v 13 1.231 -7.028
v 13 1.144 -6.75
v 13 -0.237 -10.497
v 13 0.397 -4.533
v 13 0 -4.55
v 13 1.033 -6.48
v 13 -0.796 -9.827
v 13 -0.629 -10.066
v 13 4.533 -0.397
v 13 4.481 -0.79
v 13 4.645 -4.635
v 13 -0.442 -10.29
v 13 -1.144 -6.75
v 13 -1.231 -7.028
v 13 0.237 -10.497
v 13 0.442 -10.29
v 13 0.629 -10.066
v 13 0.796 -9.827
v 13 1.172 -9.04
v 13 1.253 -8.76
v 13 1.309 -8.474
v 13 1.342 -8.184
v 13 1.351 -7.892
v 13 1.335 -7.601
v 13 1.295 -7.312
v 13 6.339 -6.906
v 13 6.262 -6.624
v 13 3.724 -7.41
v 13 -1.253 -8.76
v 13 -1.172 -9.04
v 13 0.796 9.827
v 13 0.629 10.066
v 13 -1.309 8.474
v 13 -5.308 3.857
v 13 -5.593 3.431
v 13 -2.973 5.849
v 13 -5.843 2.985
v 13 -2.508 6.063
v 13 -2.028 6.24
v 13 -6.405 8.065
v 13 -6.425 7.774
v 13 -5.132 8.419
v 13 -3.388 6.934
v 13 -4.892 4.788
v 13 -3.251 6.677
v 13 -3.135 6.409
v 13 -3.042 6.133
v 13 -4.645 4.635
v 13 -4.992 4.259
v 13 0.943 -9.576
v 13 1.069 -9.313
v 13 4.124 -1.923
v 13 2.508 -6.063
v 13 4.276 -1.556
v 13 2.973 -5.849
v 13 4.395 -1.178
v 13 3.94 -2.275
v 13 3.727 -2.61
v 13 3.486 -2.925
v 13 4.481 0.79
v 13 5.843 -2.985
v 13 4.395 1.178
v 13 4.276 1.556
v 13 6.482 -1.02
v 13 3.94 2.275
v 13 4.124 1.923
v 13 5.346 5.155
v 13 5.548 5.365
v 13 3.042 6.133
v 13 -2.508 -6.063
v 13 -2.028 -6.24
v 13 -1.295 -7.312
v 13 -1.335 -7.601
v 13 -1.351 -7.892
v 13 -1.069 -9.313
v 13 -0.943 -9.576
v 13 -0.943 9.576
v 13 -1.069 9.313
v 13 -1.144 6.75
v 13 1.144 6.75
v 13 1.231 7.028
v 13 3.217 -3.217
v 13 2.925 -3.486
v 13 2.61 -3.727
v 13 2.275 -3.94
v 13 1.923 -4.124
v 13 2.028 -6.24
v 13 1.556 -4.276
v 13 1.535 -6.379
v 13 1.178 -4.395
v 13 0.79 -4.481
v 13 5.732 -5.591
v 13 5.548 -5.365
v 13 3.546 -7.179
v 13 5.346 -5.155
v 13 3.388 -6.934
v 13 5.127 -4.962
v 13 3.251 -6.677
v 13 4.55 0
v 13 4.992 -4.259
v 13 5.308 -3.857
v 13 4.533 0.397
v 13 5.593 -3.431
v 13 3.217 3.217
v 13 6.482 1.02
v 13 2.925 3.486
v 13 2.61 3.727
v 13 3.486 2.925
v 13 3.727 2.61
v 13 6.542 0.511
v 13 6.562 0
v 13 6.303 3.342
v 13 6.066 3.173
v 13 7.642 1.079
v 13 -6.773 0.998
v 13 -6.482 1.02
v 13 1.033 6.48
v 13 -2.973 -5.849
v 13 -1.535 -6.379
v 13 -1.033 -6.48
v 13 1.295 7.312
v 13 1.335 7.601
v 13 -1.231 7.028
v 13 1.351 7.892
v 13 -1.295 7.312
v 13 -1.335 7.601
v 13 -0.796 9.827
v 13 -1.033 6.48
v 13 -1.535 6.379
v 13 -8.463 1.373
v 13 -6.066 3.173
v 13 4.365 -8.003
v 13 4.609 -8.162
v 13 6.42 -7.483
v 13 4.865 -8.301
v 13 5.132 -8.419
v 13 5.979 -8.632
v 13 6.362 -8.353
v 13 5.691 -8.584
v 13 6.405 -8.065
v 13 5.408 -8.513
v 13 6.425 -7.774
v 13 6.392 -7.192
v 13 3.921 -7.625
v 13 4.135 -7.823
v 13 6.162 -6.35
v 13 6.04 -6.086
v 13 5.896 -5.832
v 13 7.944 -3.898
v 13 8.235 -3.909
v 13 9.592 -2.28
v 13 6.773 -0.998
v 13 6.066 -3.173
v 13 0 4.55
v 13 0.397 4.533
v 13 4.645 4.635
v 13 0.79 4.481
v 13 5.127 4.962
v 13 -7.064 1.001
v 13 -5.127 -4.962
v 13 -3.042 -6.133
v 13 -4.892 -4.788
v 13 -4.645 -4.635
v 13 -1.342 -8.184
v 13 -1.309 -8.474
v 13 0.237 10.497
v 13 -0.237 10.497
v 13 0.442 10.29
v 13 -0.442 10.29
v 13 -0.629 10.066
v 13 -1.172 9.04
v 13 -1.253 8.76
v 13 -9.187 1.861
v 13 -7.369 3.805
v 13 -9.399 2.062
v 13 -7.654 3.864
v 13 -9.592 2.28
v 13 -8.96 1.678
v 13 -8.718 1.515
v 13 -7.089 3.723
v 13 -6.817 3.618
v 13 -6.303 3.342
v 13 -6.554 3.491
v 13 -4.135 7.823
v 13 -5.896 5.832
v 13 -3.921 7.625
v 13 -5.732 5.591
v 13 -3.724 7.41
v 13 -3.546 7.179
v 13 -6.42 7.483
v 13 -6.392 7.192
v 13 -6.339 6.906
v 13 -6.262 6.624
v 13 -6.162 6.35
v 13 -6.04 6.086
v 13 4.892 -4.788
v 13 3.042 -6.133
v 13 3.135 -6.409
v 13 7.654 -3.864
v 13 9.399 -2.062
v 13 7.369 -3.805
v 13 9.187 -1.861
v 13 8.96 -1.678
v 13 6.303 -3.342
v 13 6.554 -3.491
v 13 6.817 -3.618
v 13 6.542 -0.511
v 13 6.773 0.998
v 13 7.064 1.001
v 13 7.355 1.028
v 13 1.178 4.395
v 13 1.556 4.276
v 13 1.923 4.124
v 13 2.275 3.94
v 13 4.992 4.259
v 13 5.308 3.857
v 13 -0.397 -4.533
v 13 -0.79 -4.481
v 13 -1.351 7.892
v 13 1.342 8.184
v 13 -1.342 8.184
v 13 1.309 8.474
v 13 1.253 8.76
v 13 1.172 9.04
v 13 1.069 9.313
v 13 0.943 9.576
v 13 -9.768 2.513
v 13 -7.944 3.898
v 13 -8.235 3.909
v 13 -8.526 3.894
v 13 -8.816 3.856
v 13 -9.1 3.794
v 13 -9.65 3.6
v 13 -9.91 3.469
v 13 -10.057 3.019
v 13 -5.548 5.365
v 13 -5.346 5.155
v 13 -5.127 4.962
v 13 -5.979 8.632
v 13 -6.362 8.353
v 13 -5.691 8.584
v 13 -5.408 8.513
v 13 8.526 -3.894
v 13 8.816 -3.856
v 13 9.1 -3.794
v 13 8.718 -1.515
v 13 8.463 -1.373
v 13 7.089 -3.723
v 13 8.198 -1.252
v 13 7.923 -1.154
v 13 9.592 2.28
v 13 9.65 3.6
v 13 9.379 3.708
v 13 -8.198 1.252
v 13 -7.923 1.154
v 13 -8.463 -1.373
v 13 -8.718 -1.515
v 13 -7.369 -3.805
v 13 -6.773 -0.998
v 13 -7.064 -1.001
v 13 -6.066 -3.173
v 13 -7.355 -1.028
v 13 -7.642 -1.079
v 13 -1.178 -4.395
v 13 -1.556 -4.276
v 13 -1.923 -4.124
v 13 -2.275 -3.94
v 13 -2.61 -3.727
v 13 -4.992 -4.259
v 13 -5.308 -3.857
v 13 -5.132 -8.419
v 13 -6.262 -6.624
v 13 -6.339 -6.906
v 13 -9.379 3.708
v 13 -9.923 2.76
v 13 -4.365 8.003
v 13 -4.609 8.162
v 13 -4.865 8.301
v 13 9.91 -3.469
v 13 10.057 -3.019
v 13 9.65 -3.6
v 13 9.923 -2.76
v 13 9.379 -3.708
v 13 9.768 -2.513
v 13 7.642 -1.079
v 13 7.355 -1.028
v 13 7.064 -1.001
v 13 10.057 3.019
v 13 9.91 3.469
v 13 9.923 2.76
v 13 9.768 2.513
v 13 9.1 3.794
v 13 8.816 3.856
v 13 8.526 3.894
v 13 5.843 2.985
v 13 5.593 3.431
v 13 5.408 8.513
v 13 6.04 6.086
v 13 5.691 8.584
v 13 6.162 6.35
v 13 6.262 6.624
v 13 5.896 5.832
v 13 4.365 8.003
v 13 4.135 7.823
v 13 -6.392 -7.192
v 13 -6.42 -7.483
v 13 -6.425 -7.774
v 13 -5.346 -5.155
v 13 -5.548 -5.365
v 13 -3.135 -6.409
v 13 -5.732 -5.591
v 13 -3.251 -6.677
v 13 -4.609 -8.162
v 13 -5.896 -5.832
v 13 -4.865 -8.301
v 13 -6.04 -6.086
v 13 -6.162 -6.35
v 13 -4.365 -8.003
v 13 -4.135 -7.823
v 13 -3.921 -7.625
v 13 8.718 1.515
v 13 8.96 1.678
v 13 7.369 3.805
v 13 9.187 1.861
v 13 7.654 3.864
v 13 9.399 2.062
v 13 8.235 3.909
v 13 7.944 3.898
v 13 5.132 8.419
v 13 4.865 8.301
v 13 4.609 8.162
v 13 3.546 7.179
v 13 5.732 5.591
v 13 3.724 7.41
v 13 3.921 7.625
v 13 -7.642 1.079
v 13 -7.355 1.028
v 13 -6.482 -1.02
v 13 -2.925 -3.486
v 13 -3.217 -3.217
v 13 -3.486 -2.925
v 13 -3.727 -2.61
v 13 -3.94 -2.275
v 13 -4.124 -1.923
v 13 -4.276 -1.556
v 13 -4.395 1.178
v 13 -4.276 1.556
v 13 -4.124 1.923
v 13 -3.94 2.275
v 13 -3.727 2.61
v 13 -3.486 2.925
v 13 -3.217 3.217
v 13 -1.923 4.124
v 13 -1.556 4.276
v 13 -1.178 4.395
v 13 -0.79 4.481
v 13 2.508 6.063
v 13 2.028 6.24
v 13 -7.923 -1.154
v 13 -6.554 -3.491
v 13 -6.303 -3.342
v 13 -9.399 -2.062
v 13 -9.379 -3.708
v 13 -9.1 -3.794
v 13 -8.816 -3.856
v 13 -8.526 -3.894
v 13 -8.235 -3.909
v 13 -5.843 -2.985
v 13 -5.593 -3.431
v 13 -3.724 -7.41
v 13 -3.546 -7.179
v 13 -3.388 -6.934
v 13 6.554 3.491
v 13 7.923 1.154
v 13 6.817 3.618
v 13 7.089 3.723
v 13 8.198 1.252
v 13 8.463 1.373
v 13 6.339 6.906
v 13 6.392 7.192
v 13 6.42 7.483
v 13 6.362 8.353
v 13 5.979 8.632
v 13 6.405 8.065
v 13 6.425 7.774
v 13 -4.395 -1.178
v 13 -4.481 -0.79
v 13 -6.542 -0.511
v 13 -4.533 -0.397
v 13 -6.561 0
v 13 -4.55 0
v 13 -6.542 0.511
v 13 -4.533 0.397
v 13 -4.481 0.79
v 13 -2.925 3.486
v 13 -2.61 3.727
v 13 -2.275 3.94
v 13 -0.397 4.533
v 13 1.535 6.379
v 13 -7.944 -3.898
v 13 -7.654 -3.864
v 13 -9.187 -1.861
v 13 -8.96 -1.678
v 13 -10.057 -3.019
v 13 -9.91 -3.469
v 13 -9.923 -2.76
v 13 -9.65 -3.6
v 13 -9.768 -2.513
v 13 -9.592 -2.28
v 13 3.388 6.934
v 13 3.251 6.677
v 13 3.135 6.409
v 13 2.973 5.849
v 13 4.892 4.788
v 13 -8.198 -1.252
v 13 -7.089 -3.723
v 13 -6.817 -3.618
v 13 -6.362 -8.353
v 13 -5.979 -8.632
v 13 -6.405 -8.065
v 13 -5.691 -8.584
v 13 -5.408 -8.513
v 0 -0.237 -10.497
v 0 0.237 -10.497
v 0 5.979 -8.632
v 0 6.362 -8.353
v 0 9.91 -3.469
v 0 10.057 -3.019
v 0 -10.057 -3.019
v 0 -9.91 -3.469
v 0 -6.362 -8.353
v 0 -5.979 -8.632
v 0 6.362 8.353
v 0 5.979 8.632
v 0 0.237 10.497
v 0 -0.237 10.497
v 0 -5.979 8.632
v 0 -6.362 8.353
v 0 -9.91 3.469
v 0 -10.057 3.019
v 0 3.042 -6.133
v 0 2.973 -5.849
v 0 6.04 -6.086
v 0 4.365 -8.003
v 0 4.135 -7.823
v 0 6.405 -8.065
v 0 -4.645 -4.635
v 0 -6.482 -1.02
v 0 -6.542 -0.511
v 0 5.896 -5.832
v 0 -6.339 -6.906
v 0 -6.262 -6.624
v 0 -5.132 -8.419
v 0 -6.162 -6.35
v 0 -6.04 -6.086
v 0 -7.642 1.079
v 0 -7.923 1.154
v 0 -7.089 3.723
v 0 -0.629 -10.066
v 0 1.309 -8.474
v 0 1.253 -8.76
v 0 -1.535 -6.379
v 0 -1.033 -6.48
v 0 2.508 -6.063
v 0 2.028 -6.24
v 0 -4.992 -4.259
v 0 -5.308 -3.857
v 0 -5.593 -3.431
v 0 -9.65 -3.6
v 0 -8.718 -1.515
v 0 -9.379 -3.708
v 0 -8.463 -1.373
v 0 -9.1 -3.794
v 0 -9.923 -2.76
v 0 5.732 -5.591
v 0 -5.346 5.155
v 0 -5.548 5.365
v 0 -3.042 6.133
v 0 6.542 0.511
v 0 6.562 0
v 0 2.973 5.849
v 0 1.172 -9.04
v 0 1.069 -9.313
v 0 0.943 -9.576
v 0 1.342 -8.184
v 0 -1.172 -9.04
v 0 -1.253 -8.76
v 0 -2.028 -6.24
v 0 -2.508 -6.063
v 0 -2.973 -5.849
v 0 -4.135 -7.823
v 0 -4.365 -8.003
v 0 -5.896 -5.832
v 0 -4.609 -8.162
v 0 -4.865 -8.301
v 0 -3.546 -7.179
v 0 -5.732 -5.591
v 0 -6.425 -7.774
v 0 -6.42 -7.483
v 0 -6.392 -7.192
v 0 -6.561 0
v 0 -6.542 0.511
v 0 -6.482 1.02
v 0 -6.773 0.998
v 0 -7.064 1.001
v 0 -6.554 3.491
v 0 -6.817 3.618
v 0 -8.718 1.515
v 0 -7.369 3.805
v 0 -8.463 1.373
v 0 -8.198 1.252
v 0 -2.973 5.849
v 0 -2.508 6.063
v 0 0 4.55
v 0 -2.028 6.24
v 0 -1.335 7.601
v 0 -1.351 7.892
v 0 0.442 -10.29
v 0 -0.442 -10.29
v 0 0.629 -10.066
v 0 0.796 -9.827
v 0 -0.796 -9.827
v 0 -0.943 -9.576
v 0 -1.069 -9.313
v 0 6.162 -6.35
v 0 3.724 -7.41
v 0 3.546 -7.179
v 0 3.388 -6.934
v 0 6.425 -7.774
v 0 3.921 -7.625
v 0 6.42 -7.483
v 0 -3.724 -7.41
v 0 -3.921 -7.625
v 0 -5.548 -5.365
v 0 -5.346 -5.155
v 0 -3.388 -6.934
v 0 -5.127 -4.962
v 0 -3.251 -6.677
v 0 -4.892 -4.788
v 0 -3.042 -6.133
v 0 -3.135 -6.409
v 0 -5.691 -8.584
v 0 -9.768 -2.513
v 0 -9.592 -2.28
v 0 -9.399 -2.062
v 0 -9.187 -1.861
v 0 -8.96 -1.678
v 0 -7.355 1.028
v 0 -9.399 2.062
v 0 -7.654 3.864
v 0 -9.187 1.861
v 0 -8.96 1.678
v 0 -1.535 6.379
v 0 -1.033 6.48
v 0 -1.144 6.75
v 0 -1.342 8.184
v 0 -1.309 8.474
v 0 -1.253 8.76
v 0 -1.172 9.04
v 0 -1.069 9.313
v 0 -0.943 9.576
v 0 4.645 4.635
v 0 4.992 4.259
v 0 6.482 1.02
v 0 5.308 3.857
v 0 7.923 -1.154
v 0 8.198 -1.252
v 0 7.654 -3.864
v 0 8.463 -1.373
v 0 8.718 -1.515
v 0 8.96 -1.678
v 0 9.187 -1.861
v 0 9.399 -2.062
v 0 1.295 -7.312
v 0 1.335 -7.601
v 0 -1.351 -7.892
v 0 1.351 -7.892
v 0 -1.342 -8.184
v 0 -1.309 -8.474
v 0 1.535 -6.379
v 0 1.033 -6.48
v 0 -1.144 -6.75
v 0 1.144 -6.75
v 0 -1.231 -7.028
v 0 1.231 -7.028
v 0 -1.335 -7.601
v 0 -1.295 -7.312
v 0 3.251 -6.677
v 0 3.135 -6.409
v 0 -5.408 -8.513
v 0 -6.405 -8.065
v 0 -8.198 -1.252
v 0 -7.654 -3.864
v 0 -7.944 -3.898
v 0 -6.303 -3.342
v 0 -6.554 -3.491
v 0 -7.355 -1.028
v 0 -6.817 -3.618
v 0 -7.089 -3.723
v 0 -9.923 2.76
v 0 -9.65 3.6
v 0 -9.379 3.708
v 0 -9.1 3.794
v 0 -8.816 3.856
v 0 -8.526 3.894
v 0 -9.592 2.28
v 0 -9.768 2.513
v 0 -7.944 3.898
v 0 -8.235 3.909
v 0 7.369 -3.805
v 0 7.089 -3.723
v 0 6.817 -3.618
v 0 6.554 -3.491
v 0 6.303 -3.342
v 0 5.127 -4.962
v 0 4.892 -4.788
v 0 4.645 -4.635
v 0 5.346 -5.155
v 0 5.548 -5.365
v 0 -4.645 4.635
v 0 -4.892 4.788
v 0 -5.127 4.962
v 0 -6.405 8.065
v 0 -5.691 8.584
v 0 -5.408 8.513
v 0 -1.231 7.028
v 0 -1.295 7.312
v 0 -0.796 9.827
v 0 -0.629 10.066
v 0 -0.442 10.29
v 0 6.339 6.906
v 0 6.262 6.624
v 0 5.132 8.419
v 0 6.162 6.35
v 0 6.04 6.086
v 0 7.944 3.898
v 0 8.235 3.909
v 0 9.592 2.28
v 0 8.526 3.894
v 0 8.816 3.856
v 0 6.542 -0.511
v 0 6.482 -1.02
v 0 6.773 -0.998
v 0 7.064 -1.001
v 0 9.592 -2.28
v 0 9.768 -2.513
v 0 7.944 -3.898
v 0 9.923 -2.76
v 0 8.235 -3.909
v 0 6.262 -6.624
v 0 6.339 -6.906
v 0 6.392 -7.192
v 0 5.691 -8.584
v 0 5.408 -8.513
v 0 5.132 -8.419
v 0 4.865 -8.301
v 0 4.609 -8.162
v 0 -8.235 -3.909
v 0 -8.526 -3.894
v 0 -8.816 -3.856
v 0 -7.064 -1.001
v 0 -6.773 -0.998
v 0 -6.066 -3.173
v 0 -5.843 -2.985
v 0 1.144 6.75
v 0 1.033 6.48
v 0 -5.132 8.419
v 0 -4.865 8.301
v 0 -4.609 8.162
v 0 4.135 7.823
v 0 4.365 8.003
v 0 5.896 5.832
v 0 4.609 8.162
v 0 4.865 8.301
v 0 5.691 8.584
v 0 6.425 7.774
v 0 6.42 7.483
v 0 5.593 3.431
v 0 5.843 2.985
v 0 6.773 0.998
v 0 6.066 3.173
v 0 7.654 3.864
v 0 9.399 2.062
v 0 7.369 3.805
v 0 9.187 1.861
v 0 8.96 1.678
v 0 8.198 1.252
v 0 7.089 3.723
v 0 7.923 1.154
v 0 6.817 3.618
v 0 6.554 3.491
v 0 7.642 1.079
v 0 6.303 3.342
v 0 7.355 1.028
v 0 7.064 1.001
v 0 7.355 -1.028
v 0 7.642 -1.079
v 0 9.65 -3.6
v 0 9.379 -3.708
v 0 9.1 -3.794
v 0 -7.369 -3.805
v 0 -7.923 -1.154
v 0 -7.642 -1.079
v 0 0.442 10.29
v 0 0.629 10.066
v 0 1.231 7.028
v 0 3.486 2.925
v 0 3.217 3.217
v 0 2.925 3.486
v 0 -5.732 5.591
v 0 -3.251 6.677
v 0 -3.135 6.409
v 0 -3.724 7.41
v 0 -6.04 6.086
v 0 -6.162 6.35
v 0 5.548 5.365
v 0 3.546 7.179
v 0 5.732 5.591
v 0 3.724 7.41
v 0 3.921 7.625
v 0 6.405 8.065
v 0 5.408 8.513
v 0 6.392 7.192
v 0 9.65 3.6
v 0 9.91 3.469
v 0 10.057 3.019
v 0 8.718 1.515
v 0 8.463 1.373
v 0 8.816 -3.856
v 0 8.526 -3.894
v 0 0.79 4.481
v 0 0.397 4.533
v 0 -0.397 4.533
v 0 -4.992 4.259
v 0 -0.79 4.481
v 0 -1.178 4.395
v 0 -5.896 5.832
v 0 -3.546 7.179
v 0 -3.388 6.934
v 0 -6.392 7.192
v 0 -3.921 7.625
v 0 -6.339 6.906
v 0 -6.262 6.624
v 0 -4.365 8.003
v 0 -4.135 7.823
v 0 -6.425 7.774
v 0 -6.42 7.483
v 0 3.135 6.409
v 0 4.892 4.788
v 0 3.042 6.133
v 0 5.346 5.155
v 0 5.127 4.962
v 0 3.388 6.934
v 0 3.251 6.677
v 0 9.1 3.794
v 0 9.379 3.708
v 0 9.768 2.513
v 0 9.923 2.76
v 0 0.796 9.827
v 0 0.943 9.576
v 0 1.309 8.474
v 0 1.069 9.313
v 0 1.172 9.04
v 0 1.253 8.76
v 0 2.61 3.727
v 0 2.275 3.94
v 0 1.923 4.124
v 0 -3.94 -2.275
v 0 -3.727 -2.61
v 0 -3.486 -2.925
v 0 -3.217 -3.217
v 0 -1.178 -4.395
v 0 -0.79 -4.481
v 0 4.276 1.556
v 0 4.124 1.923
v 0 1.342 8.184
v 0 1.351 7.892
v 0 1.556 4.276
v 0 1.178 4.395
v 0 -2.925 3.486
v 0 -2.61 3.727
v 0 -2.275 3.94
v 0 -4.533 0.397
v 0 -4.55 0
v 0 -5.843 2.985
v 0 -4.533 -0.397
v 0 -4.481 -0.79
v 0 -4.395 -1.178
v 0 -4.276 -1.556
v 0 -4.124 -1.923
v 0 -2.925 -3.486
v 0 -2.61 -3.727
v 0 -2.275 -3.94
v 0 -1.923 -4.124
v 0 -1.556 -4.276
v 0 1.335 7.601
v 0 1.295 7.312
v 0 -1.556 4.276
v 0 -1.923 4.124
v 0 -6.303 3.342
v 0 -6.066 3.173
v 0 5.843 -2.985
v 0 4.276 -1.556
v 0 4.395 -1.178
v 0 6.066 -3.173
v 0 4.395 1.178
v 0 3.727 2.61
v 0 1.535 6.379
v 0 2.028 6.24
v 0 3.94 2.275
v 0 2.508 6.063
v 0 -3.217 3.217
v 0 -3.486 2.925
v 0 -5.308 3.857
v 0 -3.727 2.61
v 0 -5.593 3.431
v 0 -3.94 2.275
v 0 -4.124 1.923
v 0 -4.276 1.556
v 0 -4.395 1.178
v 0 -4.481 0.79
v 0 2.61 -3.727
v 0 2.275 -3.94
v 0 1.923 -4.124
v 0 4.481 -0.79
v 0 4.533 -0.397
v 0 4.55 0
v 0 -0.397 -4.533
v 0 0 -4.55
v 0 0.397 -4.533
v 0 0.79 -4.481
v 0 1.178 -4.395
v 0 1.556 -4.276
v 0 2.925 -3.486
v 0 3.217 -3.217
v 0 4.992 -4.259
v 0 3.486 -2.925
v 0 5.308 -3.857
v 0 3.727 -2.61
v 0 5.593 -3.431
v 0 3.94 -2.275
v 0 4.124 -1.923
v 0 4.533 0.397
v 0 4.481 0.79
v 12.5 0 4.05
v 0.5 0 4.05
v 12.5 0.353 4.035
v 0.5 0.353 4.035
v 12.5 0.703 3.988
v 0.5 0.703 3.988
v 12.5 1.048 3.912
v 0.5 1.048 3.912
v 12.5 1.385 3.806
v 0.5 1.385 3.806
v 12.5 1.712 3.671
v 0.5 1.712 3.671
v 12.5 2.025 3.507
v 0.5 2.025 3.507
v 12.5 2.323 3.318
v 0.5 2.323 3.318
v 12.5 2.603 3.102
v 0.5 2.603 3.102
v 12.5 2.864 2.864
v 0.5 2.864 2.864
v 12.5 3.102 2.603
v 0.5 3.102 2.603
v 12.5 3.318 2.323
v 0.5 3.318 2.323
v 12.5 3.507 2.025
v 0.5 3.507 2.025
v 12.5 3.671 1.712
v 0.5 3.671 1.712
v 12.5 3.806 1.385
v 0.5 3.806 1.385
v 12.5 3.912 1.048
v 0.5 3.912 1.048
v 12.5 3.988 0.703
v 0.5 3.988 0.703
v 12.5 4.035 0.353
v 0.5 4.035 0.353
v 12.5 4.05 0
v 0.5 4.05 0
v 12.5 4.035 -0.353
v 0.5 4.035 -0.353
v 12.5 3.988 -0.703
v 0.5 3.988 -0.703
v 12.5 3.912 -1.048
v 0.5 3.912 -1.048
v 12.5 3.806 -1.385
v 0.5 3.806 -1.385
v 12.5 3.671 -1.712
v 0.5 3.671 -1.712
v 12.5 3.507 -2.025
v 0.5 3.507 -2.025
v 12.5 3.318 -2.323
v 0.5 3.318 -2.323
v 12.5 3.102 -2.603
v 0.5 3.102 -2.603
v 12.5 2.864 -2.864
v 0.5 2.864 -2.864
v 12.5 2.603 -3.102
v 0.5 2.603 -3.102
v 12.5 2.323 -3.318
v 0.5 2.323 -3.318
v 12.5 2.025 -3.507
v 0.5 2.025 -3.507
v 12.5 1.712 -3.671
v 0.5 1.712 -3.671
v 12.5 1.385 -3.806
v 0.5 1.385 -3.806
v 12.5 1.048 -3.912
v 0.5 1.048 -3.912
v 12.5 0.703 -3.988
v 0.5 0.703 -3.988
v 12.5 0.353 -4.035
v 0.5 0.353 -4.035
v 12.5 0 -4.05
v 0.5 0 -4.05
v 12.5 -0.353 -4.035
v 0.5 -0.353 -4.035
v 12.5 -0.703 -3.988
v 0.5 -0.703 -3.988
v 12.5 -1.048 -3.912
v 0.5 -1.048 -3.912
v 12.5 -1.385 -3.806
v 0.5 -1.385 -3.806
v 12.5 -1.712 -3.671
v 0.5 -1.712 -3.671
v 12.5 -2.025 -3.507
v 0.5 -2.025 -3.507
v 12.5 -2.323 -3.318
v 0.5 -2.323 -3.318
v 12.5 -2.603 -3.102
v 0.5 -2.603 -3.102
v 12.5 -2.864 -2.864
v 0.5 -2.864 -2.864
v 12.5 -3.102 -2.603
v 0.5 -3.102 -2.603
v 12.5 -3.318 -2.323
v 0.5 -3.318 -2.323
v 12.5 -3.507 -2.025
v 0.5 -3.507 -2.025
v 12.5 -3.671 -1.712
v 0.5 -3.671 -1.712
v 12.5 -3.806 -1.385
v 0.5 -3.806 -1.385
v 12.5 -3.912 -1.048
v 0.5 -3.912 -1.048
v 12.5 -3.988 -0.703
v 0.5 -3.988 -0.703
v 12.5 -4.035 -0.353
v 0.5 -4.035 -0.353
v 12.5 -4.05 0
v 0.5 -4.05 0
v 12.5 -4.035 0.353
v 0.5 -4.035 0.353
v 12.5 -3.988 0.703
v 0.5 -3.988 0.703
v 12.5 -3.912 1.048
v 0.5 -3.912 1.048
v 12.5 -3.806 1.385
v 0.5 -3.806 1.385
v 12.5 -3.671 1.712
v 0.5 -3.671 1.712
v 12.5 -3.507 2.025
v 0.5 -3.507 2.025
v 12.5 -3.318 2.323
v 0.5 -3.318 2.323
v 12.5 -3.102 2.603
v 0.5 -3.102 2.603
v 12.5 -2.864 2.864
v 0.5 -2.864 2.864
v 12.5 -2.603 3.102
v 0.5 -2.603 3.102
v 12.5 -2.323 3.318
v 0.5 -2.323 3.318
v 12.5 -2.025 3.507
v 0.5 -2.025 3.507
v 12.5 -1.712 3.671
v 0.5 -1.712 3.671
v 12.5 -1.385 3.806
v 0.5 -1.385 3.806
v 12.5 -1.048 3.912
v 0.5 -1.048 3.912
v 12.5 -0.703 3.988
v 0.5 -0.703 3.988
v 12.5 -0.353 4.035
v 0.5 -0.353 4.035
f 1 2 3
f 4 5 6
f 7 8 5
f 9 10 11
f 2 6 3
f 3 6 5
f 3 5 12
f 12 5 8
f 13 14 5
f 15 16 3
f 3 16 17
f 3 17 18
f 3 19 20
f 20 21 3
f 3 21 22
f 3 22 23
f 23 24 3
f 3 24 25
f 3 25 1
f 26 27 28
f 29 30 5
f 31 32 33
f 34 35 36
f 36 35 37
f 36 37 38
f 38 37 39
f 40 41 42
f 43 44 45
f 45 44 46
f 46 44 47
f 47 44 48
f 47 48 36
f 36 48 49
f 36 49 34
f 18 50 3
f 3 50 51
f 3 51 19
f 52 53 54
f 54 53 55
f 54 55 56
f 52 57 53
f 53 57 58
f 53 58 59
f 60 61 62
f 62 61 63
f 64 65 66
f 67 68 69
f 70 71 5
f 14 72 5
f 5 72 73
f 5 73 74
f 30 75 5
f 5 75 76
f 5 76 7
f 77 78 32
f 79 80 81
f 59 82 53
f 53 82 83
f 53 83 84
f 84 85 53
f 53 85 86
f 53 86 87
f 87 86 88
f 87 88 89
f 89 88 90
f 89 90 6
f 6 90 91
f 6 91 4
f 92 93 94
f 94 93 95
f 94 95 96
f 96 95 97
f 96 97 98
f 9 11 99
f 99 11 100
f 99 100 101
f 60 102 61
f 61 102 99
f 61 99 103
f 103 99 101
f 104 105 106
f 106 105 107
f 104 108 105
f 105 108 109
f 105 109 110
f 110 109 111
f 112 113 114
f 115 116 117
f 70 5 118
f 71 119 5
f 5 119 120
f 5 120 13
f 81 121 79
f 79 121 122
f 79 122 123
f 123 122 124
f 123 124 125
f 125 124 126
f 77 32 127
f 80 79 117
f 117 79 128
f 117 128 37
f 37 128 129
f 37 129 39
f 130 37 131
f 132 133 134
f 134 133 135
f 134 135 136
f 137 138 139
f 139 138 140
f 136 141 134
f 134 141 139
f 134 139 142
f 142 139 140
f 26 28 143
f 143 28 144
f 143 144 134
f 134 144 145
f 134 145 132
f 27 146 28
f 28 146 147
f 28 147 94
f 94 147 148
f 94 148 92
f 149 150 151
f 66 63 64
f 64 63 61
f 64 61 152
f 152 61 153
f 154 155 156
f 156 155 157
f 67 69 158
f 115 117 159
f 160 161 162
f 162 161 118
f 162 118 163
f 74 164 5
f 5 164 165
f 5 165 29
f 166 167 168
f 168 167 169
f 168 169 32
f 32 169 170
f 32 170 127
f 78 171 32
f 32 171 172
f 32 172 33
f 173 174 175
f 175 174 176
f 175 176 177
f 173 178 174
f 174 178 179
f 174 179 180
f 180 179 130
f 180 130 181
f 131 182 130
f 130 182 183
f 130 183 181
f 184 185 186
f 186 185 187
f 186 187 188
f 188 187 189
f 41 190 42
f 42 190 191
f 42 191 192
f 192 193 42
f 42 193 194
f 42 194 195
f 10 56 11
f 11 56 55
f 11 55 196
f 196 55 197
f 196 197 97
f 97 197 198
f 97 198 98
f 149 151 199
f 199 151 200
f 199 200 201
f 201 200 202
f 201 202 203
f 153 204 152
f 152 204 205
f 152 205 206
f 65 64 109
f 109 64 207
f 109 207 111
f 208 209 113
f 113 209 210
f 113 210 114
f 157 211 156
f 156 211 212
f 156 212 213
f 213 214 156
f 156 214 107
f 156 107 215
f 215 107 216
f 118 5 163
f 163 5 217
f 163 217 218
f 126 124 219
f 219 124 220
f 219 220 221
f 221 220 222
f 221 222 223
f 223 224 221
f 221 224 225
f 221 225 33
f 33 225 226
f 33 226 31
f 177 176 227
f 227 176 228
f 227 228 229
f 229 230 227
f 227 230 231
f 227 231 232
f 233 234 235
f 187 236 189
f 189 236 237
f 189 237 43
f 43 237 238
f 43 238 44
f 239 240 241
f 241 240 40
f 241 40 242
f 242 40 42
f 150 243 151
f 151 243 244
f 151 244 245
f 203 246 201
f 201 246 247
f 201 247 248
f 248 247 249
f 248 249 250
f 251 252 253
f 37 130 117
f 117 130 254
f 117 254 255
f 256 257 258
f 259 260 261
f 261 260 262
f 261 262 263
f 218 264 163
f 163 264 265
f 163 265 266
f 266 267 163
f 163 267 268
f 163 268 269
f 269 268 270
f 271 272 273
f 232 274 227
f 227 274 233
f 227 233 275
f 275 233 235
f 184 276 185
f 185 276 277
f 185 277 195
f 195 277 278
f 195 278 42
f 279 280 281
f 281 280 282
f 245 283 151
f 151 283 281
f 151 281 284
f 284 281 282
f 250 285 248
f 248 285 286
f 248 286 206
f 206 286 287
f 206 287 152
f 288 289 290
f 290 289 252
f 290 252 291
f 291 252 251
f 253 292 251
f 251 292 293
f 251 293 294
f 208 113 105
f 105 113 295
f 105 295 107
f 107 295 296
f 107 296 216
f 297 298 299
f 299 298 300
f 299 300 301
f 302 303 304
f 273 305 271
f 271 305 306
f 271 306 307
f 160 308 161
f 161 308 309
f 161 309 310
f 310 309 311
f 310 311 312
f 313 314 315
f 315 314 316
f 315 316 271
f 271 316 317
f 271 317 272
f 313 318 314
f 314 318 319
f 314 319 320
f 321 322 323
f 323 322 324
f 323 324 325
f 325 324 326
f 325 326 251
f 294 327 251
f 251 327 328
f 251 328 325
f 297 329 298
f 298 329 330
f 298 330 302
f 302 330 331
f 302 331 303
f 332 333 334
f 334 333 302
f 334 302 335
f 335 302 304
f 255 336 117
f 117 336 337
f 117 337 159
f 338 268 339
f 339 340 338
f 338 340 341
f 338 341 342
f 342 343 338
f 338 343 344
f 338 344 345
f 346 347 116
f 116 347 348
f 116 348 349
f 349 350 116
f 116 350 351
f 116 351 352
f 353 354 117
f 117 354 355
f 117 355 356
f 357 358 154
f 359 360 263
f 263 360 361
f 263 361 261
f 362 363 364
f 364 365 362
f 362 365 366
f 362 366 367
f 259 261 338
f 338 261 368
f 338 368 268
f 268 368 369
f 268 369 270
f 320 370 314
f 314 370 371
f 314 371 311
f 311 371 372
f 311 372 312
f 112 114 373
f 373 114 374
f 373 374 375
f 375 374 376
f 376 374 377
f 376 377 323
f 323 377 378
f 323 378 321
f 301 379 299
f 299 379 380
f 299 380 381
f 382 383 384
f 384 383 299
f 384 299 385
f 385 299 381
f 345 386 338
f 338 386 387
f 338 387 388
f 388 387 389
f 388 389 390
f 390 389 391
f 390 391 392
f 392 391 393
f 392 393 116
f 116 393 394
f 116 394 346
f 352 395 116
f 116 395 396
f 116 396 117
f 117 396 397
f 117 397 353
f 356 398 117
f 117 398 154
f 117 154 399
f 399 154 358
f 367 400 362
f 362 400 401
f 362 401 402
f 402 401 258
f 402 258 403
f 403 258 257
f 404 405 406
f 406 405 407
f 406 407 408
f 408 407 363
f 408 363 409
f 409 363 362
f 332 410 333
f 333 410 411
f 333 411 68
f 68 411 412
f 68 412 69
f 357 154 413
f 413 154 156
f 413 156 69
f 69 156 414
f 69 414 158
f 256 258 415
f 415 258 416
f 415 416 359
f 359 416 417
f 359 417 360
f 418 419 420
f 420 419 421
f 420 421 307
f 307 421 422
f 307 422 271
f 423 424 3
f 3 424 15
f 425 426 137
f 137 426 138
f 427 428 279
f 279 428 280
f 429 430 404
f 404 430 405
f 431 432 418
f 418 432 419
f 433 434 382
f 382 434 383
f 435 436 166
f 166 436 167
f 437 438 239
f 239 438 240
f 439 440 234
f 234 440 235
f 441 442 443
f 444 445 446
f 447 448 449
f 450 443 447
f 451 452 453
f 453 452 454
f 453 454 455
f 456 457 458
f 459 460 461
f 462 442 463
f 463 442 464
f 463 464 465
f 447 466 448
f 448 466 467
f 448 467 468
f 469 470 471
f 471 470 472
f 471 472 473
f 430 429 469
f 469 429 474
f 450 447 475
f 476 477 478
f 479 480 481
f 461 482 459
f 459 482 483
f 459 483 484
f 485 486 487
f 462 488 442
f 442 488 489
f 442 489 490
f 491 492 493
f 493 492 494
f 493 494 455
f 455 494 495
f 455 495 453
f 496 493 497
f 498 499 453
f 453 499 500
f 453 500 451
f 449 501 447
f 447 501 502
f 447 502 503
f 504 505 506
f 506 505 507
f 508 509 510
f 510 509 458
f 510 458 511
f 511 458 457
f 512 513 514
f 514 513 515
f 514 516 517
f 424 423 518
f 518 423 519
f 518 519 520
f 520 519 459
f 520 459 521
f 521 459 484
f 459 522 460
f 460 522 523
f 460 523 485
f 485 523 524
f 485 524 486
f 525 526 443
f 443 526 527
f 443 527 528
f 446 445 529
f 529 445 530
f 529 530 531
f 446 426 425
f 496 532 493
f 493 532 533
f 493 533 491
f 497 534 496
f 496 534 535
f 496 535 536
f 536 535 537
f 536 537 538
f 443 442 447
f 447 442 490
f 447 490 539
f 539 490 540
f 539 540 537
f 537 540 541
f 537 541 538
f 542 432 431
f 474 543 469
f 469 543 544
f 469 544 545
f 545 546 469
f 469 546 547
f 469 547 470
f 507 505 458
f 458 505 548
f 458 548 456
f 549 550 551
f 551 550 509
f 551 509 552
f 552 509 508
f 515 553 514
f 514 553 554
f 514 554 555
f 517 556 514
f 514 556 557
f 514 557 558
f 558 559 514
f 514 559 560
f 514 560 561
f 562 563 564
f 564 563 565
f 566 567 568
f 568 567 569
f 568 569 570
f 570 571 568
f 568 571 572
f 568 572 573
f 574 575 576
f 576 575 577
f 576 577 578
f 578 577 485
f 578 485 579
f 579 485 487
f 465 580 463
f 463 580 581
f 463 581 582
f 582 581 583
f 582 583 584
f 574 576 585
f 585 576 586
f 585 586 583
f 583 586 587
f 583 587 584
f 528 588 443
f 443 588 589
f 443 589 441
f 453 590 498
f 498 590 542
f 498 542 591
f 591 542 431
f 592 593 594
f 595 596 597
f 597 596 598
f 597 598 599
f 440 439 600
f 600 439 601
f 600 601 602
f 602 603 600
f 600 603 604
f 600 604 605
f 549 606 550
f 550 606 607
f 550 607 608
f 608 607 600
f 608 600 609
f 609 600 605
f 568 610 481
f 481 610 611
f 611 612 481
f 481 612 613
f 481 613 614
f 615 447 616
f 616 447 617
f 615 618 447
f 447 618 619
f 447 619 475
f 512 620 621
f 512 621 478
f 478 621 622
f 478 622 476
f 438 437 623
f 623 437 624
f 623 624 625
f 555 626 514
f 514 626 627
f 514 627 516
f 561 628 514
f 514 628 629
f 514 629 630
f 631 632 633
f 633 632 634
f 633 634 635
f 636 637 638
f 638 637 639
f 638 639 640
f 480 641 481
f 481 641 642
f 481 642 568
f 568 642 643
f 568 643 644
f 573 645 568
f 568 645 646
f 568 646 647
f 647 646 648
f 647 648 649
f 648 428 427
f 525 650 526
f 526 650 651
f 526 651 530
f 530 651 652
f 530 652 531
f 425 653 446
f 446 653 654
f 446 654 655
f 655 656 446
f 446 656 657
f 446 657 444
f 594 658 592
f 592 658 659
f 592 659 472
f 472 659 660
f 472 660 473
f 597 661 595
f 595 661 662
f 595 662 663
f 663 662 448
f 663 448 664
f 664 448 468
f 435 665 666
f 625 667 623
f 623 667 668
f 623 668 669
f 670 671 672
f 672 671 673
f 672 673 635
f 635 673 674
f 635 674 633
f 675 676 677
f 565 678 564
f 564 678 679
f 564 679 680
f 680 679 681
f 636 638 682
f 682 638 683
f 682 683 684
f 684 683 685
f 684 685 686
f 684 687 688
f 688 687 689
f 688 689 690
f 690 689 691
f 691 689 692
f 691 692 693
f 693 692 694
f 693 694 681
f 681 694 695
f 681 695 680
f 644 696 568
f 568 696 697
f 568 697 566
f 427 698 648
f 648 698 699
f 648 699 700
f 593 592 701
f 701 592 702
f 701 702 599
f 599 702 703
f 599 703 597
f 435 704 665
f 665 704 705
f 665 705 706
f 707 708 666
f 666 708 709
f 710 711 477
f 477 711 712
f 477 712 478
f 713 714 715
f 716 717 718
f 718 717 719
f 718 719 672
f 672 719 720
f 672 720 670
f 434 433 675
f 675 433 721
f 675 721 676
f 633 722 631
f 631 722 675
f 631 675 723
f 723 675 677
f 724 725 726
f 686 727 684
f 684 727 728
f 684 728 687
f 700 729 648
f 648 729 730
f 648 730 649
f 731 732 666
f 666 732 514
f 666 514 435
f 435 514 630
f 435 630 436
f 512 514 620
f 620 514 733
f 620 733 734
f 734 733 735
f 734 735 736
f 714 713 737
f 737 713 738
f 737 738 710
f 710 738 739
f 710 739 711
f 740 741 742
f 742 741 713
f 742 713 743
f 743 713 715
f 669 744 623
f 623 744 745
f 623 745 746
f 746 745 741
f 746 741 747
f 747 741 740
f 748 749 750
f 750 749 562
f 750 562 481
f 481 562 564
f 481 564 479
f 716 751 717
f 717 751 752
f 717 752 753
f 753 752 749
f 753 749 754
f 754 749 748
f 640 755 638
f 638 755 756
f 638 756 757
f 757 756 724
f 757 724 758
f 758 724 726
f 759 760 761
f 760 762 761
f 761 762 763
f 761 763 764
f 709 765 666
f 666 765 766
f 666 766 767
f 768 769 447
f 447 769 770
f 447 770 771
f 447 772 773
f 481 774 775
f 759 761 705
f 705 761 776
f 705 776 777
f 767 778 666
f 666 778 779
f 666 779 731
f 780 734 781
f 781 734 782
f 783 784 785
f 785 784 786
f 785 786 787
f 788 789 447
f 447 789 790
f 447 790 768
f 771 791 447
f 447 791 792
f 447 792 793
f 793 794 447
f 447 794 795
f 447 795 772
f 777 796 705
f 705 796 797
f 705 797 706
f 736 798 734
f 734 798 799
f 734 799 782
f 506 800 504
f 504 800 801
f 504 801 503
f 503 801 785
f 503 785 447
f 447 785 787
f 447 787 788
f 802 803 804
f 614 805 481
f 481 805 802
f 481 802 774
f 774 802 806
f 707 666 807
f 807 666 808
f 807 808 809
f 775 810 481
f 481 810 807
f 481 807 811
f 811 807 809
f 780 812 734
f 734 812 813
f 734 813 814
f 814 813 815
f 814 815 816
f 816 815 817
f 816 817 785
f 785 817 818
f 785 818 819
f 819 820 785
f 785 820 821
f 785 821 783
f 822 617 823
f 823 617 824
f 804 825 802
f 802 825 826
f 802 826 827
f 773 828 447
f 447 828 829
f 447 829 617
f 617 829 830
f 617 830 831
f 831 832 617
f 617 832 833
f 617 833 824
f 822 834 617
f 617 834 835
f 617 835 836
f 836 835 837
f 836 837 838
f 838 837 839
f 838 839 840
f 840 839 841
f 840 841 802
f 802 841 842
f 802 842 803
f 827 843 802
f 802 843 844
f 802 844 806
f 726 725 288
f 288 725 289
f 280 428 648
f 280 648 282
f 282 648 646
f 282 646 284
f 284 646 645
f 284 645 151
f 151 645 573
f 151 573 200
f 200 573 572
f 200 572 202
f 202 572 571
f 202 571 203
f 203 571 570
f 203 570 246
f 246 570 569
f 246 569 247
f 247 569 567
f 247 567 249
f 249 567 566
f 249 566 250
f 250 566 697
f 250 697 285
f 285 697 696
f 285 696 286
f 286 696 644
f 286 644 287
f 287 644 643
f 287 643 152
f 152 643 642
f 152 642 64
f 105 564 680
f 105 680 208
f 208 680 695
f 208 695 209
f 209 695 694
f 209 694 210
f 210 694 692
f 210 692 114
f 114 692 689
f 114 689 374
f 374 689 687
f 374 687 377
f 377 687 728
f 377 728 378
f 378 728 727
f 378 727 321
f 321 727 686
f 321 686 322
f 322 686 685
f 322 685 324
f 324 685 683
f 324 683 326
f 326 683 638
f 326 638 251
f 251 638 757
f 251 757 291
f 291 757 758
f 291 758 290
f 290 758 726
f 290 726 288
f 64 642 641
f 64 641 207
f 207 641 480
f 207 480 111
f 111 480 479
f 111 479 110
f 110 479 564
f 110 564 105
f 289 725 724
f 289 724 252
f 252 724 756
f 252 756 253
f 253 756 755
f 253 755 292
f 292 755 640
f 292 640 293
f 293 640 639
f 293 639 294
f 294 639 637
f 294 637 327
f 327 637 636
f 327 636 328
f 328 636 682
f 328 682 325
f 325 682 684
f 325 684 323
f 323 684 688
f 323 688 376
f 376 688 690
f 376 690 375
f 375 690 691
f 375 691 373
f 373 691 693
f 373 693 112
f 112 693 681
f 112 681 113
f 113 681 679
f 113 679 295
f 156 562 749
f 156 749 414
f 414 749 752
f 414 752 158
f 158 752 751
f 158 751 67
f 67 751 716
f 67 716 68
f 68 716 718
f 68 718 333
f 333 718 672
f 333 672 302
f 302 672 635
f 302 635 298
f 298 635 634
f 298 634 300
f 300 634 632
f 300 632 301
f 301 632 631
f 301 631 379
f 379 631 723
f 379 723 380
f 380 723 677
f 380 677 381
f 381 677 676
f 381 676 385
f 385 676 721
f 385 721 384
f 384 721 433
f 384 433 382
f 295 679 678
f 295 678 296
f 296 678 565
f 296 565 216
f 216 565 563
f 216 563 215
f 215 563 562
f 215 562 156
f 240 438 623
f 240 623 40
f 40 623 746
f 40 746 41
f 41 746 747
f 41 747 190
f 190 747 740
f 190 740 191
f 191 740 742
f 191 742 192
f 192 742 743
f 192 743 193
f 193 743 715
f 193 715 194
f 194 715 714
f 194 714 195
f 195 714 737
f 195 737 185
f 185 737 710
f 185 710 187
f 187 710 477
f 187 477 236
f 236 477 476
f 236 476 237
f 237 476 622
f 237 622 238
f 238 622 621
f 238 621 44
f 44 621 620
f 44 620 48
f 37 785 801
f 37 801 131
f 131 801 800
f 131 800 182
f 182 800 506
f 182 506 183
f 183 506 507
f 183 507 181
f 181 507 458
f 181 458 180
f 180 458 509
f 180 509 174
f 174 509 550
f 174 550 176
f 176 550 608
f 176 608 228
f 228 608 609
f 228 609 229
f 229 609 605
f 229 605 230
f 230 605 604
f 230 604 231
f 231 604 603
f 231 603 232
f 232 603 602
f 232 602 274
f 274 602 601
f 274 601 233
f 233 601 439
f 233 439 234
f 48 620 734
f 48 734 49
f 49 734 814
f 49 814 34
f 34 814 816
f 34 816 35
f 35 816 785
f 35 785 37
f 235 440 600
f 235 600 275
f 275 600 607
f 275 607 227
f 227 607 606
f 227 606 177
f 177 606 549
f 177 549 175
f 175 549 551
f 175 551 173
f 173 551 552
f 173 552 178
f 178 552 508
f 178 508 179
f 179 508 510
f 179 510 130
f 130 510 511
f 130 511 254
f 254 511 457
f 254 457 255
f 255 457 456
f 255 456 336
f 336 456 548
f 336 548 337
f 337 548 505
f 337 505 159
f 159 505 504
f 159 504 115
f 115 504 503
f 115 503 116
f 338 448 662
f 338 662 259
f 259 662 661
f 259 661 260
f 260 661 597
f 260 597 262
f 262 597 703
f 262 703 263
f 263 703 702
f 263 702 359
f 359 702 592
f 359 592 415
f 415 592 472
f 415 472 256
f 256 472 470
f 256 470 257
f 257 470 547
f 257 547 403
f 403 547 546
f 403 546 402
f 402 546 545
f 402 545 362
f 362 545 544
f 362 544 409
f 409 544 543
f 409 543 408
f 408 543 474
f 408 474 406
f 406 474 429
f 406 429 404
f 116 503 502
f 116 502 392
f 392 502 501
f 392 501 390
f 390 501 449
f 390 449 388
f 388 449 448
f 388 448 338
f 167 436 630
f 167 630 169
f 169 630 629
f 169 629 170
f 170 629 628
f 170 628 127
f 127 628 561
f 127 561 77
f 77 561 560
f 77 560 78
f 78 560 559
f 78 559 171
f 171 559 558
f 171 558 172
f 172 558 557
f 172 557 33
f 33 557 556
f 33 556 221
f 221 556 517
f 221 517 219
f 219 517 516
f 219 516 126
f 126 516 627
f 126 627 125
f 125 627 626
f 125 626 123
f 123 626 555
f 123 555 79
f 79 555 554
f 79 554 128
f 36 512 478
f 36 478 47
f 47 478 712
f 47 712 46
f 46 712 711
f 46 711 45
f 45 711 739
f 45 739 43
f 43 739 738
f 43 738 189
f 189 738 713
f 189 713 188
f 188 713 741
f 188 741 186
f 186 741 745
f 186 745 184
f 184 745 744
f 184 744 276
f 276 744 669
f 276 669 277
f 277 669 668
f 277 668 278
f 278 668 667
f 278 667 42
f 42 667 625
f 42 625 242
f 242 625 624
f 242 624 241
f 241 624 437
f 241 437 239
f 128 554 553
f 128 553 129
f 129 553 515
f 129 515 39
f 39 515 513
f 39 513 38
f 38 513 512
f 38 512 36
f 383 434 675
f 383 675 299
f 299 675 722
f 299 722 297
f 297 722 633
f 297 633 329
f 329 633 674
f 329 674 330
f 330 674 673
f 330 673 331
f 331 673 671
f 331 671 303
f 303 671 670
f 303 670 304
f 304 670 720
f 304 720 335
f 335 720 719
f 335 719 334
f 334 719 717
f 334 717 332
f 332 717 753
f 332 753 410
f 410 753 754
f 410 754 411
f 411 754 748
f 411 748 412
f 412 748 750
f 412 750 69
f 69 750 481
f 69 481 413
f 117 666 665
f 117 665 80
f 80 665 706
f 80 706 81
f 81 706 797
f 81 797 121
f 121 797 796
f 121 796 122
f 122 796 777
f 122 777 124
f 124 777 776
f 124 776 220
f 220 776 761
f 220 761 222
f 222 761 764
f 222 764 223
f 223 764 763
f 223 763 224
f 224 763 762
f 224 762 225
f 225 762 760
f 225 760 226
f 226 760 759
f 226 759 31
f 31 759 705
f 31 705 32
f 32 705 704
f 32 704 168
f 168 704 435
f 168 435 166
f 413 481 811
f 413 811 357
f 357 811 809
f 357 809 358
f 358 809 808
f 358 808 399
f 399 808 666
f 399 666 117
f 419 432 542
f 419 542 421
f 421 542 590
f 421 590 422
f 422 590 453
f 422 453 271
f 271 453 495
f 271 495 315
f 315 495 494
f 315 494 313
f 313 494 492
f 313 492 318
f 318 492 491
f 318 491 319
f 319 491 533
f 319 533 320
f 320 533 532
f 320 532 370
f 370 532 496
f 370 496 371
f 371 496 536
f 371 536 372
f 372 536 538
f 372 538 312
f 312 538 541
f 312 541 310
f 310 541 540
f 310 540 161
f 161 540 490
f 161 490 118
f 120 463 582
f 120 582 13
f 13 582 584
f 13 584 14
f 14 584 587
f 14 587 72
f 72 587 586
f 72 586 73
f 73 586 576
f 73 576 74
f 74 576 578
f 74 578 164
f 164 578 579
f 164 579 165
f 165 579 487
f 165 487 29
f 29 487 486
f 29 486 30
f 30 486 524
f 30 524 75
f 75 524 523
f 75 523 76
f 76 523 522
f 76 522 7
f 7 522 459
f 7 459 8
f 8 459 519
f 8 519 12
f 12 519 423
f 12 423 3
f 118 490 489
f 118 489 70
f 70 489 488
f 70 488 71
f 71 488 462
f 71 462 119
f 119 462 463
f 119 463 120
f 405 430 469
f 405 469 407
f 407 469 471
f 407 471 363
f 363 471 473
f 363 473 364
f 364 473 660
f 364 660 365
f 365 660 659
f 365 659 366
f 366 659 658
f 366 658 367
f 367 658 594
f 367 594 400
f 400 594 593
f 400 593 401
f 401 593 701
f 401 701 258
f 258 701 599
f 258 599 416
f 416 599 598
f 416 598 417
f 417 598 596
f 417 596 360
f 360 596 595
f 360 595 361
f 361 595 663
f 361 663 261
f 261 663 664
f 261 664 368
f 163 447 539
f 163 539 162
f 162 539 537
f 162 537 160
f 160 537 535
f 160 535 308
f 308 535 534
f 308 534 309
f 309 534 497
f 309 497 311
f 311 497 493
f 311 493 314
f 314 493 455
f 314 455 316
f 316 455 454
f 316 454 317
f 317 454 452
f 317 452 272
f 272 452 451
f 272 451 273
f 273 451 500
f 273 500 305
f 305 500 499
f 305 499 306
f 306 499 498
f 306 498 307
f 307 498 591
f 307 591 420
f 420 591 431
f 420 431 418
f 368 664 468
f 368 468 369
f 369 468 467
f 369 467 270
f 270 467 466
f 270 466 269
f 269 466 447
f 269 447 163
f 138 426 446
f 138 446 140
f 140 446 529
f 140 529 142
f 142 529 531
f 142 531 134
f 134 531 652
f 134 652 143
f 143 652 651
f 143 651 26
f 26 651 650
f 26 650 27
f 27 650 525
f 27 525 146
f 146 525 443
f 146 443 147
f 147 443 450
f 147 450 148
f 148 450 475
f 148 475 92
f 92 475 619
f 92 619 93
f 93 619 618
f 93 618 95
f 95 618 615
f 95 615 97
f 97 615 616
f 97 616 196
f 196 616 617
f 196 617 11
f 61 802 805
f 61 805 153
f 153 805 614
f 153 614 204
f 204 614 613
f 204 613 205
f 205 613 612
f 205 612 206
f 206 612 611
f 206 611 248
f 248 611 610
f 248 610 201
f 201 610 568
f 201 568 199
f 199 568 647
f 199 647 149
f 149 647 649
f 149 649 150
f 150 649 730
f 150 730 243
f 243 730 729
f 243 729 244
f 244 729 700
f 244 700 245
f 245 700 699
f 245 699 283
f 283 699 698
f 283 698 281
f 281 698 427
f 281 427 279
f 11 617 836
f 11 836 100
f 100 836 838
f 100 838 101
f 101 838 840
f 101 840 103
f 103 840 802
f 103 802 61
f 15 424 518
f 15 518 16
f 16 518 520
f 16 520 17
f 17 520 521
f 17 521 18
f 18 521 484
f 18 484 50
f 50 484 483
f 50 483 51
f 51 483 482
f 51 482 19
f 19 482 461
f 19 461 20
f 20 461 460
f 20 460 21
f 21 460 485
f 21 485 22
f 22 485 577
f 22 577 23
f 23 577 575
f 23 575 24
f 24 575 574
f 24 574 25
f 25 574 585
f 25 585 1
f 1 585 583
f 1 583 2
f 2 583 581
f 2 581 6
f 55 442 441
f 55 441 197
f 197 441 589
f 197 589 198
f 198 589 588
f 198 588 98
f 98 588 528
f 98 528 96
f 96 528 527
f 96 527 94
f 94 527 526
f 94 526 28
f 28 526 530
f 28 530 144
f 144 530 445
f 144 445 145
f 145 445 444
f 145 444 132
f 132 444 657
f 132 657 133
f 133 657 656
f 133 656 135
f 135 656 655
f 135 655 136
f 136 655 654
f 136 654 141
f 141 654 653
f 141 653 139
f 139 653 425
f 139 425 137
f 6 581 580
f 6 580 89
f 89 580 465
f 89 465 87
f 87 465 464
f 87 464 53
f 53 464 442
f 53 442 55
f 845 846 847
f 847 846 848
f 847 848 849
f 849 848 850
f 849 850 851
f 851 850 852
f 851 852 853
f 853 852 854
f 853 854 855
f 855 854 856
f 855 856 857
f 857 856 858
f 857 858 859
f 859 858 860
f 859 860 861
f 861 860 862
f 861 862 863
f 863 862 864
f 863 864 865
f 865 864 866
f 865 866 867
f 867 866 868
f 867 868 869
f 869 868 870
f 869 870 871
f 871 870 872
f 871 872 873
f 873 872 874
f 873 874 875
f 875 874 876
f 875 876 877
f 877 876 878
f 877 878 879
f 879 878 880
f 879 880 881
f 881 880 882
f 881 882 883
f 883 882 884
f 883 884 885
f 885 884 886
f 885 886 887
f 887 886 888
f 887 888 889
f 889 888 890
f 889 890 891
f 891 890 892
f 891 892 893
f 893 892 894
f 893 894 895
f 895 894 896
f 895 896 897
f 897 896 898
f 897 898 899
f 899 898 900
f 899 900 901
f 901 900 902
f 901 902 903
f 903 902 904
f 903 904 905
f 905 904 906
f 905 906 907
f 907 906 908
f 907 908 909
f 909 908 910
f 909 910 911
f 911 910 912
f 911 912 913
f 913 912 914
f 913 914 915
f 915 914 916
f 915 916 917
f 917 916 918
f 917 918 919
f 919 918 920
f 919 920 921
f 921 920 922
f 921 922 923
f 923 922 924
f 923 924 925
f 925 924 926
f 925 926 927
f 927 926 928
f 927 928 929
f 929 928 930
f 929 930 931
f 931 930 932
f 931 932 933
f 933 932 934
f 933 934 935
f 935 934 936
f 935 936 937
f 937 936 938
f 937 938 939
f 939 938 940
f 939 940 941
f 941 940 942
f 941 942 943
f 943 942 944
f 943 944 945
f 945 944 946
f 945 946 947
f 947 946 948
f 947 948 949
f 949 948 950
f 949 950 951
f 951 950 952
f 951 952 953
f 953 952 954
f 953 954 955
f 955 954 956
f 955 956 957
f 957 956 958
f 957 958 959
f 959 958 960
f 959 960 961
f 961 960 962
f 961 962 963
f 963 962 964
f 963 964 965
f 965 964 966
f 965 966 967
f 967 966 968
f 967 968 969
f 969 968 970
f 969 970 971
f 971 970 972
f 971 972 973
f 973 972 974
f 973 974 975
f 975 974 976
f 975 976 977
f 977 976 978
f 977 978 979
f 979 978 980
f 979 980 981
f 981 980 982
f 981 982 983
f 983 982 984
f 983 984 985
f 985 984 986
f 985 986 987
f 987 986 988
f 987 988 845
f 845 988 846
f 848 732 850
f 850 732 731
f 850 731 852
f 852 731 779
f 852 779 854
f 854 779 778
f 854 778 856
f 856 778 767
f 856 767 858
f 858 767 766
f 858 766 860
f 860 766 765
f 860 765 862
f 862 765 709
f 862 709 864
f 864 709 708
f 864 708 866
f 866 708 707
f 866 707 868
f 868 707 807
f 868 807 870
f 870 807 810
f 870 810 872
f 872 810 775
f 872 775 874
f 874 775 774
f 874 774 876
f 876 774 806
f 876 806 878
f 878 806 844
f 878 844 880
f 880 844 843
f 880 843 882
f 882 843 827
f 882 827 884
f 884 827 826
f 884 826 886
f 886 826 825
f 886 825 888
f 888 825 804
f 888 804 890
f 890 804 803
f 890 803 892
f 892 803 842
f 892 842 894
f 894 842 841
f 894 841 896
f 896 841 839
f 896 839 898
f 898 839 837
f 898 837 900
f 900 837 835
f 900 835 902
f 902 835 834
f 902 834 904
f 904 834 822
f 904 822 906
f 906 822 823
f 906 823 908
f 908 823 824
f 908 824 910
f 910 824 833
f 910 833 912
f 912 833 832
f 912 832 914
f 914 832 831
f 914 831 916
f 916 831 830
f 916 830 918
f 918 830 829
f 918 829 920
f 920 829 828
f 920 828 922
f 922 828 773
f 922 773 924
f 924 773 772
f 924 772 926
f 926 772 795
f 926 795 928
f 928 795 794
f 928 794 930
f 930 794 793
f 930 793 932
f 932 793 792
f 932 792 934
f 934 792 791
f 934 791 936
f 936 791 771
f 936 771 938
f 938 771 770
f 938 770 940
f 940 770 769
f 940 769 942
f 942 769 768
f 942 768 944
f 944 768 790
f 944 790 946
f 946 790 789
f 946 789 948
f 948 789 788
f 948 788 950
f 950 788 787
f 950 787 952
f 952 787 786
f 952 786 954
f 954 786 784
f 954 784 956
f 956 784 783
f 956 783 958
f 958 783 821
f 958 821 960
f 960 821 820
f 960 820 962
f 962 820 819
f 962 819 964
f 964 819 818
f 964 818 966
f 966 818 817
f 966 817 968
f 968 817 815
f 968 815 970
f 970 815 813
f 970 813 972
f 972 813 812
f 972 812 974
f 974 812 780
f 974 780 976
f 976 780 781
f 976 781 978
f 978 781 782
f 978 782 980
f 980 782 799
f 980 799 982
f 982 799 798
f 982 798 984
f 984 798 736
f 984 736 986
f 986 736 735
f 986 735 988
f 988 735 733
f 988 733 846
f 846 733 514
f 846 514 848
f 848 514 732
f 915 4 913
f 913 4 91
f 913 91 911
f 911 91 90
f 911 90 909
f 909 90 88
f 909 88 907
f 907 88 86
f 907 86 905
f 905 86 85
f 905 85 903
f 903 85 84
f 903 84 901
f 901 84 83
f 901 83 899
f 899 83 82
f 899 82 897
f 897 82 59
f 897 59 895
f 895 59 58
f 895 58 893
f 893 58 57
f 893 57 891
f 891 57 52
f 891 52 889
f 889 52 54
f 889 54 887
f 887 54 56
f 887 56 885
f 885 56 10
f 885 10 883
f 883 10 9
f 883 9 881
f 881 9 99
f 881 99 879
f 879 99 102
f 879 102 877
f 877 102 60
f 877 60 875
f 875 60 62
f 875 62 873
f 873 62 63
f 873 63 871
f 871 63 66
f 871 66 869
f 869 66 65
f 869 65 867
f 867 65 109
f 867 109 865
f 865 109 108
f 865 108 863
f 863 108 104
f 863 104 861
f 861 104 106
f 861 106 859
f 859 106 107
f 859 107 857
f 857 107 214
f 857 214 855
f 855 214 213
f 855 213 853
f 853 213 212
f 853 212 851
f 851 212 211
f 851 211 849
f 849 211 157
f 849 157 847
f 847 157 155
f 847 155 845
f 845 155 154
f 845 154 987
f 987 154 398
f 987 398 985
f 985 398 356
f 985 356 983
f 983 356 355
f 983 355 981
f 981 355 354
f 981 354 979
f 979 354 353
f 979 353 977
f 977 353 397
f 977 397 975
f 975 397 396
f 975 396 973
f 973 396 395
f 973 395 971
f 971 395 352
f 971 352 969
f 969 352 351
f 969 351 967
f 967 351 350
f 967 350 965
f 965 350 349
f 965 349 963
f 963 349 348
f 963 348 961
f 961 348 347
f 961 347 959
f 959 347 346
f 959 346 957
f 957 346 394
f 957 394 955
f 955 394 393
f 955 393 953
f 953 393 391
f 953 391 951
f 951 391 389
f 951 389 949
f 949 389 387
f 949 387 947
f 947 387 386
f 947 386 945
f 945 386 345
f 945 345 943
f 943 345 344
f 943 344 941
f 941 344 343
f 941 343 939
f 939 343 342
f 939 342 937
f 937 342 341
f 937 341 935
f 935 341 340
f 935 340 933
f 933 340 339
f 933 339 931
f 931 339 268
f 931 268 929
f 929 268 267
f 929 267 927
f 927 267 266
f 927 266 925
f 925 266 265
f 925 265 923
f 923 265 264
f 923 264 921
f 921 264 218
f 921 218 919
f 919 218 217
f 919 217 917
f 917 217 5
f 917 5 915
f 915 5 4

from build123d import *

# Parameters (mm, degrees)
BASPROSKE_W        = 13
BASPROSKE_H        = 10.5
TOOTHCUT_DEPTH     = 20.735754356
TEETHCUTS_COUNT    = 10
TEETHCUTS_ANGLE    = 324
BORSKE_R           = 1.5
BORE_DEPTH         = 50.0000508
CUT_EXTRUDE1_REACH = 21.504
SKETCH1_R          = 4.05
CHAMFER1_SIZE      = 0.5


with BuildPart() as part:
    # BasProSke → Base-Revolve (revolve)
    with BuildSketch(Plane(origin=(0, 0, 0), x_dir=(1, 0, 0), z_dir=(0, 1, 0)), mode=Mode.PRIVATE) as base_revolve_sk:
        with Locations((6.5, 5.25)):
            Rectangle(BASPROSKE_W, BASPROSKE_H)
    revolve(base_revolve_sk.sketch.rotate(Axis((-10, 0, 0), (1, 0, 0)), 180), axis=Axis((-10, 0, 0), (1, 0, 0)))

    # TooCutSke → ToothCut (cut, through all)
    with BuildSketch(Plane(origin=(0, 0, 0), x_dir=(0, 0, -1), z_dir=(1, 0, 0))):
        with BuildLine():
            ThreePointArc((1.019600066, 6.481797432), (0, 6.5615), (-1.019600066, 6.481797432))
            ThreePointArc((-1.019600066, 6.481797432), (-1.451036104, 8.608938557), (-3.053606956, 10.072712133))
            ThreePointArc((-3.053606956, 10.072712133), (0, 10.5254), (3.053606956, 10.072712133))
            ThreePointArc((3.053606956, 10.072712133), (1.451036104, 8.608938557), (1.019600066, 6.481797432))
        make_face()
    toothcut = extrude(amount=TOOTHCUT_DEPTH, mode=Mode.SUBTRACT)

    # TeethCuts: ToothCut ×10 about axis
    teethcuts_axis = Axis((-10, 0, 0), (1, 0, 0))
    for i in range(1, TEETHCUTS_COUNT):
        add(toothcut.rotate(teethcuts_axis, i * TEETHCUTS_ANGLE / (TEETHCUTS_COUNT - 1)), mode=Mode.SUBTRACT)

    # BorSke → Bore (cut, symmetric)
    with BuildSketch(Plane(origin=(0, 0, 0), x_dir=(0, 0, -1), z_dir=(1, 0, 0))):
        with Locations(Location((0, 0, 0), (0, 0, 180))):
            Circle(BORSKE_R)
    extrude(amount=BORE_DEPTH, both=True, mode=Mode.SUBTRACT)

    # Sketch1 → Cut-Extrude1 (cut, up to next)
    with BuildSketch(Plane.ZY, mode=Mode.PRIVATE) as cut_extrude1_sk1:
        Circle(SKETCH1_R)
    cut_extrude1_tool1 = extrude(cut_extrude1_sk1.sketch, amount=-CUT_EXTRUDE1_REACH, mode=Mode.PRIVATE) & part.part
    add(cut_extrude1_tool1.solids().sort_by_distance((0, 0, 0))[0], mode=Mode.SUBTRACT)

    # Chamfer1
    chamfer1_edges = [part.edges().sort_by_distance(p)[0] for p in [
        (0, 0, -4.05),
        (13, 0, -4.05),
    ]]
    chamfer(chamfer1_edges, length=CHAMFER1_SIZE)


solid = part.part
